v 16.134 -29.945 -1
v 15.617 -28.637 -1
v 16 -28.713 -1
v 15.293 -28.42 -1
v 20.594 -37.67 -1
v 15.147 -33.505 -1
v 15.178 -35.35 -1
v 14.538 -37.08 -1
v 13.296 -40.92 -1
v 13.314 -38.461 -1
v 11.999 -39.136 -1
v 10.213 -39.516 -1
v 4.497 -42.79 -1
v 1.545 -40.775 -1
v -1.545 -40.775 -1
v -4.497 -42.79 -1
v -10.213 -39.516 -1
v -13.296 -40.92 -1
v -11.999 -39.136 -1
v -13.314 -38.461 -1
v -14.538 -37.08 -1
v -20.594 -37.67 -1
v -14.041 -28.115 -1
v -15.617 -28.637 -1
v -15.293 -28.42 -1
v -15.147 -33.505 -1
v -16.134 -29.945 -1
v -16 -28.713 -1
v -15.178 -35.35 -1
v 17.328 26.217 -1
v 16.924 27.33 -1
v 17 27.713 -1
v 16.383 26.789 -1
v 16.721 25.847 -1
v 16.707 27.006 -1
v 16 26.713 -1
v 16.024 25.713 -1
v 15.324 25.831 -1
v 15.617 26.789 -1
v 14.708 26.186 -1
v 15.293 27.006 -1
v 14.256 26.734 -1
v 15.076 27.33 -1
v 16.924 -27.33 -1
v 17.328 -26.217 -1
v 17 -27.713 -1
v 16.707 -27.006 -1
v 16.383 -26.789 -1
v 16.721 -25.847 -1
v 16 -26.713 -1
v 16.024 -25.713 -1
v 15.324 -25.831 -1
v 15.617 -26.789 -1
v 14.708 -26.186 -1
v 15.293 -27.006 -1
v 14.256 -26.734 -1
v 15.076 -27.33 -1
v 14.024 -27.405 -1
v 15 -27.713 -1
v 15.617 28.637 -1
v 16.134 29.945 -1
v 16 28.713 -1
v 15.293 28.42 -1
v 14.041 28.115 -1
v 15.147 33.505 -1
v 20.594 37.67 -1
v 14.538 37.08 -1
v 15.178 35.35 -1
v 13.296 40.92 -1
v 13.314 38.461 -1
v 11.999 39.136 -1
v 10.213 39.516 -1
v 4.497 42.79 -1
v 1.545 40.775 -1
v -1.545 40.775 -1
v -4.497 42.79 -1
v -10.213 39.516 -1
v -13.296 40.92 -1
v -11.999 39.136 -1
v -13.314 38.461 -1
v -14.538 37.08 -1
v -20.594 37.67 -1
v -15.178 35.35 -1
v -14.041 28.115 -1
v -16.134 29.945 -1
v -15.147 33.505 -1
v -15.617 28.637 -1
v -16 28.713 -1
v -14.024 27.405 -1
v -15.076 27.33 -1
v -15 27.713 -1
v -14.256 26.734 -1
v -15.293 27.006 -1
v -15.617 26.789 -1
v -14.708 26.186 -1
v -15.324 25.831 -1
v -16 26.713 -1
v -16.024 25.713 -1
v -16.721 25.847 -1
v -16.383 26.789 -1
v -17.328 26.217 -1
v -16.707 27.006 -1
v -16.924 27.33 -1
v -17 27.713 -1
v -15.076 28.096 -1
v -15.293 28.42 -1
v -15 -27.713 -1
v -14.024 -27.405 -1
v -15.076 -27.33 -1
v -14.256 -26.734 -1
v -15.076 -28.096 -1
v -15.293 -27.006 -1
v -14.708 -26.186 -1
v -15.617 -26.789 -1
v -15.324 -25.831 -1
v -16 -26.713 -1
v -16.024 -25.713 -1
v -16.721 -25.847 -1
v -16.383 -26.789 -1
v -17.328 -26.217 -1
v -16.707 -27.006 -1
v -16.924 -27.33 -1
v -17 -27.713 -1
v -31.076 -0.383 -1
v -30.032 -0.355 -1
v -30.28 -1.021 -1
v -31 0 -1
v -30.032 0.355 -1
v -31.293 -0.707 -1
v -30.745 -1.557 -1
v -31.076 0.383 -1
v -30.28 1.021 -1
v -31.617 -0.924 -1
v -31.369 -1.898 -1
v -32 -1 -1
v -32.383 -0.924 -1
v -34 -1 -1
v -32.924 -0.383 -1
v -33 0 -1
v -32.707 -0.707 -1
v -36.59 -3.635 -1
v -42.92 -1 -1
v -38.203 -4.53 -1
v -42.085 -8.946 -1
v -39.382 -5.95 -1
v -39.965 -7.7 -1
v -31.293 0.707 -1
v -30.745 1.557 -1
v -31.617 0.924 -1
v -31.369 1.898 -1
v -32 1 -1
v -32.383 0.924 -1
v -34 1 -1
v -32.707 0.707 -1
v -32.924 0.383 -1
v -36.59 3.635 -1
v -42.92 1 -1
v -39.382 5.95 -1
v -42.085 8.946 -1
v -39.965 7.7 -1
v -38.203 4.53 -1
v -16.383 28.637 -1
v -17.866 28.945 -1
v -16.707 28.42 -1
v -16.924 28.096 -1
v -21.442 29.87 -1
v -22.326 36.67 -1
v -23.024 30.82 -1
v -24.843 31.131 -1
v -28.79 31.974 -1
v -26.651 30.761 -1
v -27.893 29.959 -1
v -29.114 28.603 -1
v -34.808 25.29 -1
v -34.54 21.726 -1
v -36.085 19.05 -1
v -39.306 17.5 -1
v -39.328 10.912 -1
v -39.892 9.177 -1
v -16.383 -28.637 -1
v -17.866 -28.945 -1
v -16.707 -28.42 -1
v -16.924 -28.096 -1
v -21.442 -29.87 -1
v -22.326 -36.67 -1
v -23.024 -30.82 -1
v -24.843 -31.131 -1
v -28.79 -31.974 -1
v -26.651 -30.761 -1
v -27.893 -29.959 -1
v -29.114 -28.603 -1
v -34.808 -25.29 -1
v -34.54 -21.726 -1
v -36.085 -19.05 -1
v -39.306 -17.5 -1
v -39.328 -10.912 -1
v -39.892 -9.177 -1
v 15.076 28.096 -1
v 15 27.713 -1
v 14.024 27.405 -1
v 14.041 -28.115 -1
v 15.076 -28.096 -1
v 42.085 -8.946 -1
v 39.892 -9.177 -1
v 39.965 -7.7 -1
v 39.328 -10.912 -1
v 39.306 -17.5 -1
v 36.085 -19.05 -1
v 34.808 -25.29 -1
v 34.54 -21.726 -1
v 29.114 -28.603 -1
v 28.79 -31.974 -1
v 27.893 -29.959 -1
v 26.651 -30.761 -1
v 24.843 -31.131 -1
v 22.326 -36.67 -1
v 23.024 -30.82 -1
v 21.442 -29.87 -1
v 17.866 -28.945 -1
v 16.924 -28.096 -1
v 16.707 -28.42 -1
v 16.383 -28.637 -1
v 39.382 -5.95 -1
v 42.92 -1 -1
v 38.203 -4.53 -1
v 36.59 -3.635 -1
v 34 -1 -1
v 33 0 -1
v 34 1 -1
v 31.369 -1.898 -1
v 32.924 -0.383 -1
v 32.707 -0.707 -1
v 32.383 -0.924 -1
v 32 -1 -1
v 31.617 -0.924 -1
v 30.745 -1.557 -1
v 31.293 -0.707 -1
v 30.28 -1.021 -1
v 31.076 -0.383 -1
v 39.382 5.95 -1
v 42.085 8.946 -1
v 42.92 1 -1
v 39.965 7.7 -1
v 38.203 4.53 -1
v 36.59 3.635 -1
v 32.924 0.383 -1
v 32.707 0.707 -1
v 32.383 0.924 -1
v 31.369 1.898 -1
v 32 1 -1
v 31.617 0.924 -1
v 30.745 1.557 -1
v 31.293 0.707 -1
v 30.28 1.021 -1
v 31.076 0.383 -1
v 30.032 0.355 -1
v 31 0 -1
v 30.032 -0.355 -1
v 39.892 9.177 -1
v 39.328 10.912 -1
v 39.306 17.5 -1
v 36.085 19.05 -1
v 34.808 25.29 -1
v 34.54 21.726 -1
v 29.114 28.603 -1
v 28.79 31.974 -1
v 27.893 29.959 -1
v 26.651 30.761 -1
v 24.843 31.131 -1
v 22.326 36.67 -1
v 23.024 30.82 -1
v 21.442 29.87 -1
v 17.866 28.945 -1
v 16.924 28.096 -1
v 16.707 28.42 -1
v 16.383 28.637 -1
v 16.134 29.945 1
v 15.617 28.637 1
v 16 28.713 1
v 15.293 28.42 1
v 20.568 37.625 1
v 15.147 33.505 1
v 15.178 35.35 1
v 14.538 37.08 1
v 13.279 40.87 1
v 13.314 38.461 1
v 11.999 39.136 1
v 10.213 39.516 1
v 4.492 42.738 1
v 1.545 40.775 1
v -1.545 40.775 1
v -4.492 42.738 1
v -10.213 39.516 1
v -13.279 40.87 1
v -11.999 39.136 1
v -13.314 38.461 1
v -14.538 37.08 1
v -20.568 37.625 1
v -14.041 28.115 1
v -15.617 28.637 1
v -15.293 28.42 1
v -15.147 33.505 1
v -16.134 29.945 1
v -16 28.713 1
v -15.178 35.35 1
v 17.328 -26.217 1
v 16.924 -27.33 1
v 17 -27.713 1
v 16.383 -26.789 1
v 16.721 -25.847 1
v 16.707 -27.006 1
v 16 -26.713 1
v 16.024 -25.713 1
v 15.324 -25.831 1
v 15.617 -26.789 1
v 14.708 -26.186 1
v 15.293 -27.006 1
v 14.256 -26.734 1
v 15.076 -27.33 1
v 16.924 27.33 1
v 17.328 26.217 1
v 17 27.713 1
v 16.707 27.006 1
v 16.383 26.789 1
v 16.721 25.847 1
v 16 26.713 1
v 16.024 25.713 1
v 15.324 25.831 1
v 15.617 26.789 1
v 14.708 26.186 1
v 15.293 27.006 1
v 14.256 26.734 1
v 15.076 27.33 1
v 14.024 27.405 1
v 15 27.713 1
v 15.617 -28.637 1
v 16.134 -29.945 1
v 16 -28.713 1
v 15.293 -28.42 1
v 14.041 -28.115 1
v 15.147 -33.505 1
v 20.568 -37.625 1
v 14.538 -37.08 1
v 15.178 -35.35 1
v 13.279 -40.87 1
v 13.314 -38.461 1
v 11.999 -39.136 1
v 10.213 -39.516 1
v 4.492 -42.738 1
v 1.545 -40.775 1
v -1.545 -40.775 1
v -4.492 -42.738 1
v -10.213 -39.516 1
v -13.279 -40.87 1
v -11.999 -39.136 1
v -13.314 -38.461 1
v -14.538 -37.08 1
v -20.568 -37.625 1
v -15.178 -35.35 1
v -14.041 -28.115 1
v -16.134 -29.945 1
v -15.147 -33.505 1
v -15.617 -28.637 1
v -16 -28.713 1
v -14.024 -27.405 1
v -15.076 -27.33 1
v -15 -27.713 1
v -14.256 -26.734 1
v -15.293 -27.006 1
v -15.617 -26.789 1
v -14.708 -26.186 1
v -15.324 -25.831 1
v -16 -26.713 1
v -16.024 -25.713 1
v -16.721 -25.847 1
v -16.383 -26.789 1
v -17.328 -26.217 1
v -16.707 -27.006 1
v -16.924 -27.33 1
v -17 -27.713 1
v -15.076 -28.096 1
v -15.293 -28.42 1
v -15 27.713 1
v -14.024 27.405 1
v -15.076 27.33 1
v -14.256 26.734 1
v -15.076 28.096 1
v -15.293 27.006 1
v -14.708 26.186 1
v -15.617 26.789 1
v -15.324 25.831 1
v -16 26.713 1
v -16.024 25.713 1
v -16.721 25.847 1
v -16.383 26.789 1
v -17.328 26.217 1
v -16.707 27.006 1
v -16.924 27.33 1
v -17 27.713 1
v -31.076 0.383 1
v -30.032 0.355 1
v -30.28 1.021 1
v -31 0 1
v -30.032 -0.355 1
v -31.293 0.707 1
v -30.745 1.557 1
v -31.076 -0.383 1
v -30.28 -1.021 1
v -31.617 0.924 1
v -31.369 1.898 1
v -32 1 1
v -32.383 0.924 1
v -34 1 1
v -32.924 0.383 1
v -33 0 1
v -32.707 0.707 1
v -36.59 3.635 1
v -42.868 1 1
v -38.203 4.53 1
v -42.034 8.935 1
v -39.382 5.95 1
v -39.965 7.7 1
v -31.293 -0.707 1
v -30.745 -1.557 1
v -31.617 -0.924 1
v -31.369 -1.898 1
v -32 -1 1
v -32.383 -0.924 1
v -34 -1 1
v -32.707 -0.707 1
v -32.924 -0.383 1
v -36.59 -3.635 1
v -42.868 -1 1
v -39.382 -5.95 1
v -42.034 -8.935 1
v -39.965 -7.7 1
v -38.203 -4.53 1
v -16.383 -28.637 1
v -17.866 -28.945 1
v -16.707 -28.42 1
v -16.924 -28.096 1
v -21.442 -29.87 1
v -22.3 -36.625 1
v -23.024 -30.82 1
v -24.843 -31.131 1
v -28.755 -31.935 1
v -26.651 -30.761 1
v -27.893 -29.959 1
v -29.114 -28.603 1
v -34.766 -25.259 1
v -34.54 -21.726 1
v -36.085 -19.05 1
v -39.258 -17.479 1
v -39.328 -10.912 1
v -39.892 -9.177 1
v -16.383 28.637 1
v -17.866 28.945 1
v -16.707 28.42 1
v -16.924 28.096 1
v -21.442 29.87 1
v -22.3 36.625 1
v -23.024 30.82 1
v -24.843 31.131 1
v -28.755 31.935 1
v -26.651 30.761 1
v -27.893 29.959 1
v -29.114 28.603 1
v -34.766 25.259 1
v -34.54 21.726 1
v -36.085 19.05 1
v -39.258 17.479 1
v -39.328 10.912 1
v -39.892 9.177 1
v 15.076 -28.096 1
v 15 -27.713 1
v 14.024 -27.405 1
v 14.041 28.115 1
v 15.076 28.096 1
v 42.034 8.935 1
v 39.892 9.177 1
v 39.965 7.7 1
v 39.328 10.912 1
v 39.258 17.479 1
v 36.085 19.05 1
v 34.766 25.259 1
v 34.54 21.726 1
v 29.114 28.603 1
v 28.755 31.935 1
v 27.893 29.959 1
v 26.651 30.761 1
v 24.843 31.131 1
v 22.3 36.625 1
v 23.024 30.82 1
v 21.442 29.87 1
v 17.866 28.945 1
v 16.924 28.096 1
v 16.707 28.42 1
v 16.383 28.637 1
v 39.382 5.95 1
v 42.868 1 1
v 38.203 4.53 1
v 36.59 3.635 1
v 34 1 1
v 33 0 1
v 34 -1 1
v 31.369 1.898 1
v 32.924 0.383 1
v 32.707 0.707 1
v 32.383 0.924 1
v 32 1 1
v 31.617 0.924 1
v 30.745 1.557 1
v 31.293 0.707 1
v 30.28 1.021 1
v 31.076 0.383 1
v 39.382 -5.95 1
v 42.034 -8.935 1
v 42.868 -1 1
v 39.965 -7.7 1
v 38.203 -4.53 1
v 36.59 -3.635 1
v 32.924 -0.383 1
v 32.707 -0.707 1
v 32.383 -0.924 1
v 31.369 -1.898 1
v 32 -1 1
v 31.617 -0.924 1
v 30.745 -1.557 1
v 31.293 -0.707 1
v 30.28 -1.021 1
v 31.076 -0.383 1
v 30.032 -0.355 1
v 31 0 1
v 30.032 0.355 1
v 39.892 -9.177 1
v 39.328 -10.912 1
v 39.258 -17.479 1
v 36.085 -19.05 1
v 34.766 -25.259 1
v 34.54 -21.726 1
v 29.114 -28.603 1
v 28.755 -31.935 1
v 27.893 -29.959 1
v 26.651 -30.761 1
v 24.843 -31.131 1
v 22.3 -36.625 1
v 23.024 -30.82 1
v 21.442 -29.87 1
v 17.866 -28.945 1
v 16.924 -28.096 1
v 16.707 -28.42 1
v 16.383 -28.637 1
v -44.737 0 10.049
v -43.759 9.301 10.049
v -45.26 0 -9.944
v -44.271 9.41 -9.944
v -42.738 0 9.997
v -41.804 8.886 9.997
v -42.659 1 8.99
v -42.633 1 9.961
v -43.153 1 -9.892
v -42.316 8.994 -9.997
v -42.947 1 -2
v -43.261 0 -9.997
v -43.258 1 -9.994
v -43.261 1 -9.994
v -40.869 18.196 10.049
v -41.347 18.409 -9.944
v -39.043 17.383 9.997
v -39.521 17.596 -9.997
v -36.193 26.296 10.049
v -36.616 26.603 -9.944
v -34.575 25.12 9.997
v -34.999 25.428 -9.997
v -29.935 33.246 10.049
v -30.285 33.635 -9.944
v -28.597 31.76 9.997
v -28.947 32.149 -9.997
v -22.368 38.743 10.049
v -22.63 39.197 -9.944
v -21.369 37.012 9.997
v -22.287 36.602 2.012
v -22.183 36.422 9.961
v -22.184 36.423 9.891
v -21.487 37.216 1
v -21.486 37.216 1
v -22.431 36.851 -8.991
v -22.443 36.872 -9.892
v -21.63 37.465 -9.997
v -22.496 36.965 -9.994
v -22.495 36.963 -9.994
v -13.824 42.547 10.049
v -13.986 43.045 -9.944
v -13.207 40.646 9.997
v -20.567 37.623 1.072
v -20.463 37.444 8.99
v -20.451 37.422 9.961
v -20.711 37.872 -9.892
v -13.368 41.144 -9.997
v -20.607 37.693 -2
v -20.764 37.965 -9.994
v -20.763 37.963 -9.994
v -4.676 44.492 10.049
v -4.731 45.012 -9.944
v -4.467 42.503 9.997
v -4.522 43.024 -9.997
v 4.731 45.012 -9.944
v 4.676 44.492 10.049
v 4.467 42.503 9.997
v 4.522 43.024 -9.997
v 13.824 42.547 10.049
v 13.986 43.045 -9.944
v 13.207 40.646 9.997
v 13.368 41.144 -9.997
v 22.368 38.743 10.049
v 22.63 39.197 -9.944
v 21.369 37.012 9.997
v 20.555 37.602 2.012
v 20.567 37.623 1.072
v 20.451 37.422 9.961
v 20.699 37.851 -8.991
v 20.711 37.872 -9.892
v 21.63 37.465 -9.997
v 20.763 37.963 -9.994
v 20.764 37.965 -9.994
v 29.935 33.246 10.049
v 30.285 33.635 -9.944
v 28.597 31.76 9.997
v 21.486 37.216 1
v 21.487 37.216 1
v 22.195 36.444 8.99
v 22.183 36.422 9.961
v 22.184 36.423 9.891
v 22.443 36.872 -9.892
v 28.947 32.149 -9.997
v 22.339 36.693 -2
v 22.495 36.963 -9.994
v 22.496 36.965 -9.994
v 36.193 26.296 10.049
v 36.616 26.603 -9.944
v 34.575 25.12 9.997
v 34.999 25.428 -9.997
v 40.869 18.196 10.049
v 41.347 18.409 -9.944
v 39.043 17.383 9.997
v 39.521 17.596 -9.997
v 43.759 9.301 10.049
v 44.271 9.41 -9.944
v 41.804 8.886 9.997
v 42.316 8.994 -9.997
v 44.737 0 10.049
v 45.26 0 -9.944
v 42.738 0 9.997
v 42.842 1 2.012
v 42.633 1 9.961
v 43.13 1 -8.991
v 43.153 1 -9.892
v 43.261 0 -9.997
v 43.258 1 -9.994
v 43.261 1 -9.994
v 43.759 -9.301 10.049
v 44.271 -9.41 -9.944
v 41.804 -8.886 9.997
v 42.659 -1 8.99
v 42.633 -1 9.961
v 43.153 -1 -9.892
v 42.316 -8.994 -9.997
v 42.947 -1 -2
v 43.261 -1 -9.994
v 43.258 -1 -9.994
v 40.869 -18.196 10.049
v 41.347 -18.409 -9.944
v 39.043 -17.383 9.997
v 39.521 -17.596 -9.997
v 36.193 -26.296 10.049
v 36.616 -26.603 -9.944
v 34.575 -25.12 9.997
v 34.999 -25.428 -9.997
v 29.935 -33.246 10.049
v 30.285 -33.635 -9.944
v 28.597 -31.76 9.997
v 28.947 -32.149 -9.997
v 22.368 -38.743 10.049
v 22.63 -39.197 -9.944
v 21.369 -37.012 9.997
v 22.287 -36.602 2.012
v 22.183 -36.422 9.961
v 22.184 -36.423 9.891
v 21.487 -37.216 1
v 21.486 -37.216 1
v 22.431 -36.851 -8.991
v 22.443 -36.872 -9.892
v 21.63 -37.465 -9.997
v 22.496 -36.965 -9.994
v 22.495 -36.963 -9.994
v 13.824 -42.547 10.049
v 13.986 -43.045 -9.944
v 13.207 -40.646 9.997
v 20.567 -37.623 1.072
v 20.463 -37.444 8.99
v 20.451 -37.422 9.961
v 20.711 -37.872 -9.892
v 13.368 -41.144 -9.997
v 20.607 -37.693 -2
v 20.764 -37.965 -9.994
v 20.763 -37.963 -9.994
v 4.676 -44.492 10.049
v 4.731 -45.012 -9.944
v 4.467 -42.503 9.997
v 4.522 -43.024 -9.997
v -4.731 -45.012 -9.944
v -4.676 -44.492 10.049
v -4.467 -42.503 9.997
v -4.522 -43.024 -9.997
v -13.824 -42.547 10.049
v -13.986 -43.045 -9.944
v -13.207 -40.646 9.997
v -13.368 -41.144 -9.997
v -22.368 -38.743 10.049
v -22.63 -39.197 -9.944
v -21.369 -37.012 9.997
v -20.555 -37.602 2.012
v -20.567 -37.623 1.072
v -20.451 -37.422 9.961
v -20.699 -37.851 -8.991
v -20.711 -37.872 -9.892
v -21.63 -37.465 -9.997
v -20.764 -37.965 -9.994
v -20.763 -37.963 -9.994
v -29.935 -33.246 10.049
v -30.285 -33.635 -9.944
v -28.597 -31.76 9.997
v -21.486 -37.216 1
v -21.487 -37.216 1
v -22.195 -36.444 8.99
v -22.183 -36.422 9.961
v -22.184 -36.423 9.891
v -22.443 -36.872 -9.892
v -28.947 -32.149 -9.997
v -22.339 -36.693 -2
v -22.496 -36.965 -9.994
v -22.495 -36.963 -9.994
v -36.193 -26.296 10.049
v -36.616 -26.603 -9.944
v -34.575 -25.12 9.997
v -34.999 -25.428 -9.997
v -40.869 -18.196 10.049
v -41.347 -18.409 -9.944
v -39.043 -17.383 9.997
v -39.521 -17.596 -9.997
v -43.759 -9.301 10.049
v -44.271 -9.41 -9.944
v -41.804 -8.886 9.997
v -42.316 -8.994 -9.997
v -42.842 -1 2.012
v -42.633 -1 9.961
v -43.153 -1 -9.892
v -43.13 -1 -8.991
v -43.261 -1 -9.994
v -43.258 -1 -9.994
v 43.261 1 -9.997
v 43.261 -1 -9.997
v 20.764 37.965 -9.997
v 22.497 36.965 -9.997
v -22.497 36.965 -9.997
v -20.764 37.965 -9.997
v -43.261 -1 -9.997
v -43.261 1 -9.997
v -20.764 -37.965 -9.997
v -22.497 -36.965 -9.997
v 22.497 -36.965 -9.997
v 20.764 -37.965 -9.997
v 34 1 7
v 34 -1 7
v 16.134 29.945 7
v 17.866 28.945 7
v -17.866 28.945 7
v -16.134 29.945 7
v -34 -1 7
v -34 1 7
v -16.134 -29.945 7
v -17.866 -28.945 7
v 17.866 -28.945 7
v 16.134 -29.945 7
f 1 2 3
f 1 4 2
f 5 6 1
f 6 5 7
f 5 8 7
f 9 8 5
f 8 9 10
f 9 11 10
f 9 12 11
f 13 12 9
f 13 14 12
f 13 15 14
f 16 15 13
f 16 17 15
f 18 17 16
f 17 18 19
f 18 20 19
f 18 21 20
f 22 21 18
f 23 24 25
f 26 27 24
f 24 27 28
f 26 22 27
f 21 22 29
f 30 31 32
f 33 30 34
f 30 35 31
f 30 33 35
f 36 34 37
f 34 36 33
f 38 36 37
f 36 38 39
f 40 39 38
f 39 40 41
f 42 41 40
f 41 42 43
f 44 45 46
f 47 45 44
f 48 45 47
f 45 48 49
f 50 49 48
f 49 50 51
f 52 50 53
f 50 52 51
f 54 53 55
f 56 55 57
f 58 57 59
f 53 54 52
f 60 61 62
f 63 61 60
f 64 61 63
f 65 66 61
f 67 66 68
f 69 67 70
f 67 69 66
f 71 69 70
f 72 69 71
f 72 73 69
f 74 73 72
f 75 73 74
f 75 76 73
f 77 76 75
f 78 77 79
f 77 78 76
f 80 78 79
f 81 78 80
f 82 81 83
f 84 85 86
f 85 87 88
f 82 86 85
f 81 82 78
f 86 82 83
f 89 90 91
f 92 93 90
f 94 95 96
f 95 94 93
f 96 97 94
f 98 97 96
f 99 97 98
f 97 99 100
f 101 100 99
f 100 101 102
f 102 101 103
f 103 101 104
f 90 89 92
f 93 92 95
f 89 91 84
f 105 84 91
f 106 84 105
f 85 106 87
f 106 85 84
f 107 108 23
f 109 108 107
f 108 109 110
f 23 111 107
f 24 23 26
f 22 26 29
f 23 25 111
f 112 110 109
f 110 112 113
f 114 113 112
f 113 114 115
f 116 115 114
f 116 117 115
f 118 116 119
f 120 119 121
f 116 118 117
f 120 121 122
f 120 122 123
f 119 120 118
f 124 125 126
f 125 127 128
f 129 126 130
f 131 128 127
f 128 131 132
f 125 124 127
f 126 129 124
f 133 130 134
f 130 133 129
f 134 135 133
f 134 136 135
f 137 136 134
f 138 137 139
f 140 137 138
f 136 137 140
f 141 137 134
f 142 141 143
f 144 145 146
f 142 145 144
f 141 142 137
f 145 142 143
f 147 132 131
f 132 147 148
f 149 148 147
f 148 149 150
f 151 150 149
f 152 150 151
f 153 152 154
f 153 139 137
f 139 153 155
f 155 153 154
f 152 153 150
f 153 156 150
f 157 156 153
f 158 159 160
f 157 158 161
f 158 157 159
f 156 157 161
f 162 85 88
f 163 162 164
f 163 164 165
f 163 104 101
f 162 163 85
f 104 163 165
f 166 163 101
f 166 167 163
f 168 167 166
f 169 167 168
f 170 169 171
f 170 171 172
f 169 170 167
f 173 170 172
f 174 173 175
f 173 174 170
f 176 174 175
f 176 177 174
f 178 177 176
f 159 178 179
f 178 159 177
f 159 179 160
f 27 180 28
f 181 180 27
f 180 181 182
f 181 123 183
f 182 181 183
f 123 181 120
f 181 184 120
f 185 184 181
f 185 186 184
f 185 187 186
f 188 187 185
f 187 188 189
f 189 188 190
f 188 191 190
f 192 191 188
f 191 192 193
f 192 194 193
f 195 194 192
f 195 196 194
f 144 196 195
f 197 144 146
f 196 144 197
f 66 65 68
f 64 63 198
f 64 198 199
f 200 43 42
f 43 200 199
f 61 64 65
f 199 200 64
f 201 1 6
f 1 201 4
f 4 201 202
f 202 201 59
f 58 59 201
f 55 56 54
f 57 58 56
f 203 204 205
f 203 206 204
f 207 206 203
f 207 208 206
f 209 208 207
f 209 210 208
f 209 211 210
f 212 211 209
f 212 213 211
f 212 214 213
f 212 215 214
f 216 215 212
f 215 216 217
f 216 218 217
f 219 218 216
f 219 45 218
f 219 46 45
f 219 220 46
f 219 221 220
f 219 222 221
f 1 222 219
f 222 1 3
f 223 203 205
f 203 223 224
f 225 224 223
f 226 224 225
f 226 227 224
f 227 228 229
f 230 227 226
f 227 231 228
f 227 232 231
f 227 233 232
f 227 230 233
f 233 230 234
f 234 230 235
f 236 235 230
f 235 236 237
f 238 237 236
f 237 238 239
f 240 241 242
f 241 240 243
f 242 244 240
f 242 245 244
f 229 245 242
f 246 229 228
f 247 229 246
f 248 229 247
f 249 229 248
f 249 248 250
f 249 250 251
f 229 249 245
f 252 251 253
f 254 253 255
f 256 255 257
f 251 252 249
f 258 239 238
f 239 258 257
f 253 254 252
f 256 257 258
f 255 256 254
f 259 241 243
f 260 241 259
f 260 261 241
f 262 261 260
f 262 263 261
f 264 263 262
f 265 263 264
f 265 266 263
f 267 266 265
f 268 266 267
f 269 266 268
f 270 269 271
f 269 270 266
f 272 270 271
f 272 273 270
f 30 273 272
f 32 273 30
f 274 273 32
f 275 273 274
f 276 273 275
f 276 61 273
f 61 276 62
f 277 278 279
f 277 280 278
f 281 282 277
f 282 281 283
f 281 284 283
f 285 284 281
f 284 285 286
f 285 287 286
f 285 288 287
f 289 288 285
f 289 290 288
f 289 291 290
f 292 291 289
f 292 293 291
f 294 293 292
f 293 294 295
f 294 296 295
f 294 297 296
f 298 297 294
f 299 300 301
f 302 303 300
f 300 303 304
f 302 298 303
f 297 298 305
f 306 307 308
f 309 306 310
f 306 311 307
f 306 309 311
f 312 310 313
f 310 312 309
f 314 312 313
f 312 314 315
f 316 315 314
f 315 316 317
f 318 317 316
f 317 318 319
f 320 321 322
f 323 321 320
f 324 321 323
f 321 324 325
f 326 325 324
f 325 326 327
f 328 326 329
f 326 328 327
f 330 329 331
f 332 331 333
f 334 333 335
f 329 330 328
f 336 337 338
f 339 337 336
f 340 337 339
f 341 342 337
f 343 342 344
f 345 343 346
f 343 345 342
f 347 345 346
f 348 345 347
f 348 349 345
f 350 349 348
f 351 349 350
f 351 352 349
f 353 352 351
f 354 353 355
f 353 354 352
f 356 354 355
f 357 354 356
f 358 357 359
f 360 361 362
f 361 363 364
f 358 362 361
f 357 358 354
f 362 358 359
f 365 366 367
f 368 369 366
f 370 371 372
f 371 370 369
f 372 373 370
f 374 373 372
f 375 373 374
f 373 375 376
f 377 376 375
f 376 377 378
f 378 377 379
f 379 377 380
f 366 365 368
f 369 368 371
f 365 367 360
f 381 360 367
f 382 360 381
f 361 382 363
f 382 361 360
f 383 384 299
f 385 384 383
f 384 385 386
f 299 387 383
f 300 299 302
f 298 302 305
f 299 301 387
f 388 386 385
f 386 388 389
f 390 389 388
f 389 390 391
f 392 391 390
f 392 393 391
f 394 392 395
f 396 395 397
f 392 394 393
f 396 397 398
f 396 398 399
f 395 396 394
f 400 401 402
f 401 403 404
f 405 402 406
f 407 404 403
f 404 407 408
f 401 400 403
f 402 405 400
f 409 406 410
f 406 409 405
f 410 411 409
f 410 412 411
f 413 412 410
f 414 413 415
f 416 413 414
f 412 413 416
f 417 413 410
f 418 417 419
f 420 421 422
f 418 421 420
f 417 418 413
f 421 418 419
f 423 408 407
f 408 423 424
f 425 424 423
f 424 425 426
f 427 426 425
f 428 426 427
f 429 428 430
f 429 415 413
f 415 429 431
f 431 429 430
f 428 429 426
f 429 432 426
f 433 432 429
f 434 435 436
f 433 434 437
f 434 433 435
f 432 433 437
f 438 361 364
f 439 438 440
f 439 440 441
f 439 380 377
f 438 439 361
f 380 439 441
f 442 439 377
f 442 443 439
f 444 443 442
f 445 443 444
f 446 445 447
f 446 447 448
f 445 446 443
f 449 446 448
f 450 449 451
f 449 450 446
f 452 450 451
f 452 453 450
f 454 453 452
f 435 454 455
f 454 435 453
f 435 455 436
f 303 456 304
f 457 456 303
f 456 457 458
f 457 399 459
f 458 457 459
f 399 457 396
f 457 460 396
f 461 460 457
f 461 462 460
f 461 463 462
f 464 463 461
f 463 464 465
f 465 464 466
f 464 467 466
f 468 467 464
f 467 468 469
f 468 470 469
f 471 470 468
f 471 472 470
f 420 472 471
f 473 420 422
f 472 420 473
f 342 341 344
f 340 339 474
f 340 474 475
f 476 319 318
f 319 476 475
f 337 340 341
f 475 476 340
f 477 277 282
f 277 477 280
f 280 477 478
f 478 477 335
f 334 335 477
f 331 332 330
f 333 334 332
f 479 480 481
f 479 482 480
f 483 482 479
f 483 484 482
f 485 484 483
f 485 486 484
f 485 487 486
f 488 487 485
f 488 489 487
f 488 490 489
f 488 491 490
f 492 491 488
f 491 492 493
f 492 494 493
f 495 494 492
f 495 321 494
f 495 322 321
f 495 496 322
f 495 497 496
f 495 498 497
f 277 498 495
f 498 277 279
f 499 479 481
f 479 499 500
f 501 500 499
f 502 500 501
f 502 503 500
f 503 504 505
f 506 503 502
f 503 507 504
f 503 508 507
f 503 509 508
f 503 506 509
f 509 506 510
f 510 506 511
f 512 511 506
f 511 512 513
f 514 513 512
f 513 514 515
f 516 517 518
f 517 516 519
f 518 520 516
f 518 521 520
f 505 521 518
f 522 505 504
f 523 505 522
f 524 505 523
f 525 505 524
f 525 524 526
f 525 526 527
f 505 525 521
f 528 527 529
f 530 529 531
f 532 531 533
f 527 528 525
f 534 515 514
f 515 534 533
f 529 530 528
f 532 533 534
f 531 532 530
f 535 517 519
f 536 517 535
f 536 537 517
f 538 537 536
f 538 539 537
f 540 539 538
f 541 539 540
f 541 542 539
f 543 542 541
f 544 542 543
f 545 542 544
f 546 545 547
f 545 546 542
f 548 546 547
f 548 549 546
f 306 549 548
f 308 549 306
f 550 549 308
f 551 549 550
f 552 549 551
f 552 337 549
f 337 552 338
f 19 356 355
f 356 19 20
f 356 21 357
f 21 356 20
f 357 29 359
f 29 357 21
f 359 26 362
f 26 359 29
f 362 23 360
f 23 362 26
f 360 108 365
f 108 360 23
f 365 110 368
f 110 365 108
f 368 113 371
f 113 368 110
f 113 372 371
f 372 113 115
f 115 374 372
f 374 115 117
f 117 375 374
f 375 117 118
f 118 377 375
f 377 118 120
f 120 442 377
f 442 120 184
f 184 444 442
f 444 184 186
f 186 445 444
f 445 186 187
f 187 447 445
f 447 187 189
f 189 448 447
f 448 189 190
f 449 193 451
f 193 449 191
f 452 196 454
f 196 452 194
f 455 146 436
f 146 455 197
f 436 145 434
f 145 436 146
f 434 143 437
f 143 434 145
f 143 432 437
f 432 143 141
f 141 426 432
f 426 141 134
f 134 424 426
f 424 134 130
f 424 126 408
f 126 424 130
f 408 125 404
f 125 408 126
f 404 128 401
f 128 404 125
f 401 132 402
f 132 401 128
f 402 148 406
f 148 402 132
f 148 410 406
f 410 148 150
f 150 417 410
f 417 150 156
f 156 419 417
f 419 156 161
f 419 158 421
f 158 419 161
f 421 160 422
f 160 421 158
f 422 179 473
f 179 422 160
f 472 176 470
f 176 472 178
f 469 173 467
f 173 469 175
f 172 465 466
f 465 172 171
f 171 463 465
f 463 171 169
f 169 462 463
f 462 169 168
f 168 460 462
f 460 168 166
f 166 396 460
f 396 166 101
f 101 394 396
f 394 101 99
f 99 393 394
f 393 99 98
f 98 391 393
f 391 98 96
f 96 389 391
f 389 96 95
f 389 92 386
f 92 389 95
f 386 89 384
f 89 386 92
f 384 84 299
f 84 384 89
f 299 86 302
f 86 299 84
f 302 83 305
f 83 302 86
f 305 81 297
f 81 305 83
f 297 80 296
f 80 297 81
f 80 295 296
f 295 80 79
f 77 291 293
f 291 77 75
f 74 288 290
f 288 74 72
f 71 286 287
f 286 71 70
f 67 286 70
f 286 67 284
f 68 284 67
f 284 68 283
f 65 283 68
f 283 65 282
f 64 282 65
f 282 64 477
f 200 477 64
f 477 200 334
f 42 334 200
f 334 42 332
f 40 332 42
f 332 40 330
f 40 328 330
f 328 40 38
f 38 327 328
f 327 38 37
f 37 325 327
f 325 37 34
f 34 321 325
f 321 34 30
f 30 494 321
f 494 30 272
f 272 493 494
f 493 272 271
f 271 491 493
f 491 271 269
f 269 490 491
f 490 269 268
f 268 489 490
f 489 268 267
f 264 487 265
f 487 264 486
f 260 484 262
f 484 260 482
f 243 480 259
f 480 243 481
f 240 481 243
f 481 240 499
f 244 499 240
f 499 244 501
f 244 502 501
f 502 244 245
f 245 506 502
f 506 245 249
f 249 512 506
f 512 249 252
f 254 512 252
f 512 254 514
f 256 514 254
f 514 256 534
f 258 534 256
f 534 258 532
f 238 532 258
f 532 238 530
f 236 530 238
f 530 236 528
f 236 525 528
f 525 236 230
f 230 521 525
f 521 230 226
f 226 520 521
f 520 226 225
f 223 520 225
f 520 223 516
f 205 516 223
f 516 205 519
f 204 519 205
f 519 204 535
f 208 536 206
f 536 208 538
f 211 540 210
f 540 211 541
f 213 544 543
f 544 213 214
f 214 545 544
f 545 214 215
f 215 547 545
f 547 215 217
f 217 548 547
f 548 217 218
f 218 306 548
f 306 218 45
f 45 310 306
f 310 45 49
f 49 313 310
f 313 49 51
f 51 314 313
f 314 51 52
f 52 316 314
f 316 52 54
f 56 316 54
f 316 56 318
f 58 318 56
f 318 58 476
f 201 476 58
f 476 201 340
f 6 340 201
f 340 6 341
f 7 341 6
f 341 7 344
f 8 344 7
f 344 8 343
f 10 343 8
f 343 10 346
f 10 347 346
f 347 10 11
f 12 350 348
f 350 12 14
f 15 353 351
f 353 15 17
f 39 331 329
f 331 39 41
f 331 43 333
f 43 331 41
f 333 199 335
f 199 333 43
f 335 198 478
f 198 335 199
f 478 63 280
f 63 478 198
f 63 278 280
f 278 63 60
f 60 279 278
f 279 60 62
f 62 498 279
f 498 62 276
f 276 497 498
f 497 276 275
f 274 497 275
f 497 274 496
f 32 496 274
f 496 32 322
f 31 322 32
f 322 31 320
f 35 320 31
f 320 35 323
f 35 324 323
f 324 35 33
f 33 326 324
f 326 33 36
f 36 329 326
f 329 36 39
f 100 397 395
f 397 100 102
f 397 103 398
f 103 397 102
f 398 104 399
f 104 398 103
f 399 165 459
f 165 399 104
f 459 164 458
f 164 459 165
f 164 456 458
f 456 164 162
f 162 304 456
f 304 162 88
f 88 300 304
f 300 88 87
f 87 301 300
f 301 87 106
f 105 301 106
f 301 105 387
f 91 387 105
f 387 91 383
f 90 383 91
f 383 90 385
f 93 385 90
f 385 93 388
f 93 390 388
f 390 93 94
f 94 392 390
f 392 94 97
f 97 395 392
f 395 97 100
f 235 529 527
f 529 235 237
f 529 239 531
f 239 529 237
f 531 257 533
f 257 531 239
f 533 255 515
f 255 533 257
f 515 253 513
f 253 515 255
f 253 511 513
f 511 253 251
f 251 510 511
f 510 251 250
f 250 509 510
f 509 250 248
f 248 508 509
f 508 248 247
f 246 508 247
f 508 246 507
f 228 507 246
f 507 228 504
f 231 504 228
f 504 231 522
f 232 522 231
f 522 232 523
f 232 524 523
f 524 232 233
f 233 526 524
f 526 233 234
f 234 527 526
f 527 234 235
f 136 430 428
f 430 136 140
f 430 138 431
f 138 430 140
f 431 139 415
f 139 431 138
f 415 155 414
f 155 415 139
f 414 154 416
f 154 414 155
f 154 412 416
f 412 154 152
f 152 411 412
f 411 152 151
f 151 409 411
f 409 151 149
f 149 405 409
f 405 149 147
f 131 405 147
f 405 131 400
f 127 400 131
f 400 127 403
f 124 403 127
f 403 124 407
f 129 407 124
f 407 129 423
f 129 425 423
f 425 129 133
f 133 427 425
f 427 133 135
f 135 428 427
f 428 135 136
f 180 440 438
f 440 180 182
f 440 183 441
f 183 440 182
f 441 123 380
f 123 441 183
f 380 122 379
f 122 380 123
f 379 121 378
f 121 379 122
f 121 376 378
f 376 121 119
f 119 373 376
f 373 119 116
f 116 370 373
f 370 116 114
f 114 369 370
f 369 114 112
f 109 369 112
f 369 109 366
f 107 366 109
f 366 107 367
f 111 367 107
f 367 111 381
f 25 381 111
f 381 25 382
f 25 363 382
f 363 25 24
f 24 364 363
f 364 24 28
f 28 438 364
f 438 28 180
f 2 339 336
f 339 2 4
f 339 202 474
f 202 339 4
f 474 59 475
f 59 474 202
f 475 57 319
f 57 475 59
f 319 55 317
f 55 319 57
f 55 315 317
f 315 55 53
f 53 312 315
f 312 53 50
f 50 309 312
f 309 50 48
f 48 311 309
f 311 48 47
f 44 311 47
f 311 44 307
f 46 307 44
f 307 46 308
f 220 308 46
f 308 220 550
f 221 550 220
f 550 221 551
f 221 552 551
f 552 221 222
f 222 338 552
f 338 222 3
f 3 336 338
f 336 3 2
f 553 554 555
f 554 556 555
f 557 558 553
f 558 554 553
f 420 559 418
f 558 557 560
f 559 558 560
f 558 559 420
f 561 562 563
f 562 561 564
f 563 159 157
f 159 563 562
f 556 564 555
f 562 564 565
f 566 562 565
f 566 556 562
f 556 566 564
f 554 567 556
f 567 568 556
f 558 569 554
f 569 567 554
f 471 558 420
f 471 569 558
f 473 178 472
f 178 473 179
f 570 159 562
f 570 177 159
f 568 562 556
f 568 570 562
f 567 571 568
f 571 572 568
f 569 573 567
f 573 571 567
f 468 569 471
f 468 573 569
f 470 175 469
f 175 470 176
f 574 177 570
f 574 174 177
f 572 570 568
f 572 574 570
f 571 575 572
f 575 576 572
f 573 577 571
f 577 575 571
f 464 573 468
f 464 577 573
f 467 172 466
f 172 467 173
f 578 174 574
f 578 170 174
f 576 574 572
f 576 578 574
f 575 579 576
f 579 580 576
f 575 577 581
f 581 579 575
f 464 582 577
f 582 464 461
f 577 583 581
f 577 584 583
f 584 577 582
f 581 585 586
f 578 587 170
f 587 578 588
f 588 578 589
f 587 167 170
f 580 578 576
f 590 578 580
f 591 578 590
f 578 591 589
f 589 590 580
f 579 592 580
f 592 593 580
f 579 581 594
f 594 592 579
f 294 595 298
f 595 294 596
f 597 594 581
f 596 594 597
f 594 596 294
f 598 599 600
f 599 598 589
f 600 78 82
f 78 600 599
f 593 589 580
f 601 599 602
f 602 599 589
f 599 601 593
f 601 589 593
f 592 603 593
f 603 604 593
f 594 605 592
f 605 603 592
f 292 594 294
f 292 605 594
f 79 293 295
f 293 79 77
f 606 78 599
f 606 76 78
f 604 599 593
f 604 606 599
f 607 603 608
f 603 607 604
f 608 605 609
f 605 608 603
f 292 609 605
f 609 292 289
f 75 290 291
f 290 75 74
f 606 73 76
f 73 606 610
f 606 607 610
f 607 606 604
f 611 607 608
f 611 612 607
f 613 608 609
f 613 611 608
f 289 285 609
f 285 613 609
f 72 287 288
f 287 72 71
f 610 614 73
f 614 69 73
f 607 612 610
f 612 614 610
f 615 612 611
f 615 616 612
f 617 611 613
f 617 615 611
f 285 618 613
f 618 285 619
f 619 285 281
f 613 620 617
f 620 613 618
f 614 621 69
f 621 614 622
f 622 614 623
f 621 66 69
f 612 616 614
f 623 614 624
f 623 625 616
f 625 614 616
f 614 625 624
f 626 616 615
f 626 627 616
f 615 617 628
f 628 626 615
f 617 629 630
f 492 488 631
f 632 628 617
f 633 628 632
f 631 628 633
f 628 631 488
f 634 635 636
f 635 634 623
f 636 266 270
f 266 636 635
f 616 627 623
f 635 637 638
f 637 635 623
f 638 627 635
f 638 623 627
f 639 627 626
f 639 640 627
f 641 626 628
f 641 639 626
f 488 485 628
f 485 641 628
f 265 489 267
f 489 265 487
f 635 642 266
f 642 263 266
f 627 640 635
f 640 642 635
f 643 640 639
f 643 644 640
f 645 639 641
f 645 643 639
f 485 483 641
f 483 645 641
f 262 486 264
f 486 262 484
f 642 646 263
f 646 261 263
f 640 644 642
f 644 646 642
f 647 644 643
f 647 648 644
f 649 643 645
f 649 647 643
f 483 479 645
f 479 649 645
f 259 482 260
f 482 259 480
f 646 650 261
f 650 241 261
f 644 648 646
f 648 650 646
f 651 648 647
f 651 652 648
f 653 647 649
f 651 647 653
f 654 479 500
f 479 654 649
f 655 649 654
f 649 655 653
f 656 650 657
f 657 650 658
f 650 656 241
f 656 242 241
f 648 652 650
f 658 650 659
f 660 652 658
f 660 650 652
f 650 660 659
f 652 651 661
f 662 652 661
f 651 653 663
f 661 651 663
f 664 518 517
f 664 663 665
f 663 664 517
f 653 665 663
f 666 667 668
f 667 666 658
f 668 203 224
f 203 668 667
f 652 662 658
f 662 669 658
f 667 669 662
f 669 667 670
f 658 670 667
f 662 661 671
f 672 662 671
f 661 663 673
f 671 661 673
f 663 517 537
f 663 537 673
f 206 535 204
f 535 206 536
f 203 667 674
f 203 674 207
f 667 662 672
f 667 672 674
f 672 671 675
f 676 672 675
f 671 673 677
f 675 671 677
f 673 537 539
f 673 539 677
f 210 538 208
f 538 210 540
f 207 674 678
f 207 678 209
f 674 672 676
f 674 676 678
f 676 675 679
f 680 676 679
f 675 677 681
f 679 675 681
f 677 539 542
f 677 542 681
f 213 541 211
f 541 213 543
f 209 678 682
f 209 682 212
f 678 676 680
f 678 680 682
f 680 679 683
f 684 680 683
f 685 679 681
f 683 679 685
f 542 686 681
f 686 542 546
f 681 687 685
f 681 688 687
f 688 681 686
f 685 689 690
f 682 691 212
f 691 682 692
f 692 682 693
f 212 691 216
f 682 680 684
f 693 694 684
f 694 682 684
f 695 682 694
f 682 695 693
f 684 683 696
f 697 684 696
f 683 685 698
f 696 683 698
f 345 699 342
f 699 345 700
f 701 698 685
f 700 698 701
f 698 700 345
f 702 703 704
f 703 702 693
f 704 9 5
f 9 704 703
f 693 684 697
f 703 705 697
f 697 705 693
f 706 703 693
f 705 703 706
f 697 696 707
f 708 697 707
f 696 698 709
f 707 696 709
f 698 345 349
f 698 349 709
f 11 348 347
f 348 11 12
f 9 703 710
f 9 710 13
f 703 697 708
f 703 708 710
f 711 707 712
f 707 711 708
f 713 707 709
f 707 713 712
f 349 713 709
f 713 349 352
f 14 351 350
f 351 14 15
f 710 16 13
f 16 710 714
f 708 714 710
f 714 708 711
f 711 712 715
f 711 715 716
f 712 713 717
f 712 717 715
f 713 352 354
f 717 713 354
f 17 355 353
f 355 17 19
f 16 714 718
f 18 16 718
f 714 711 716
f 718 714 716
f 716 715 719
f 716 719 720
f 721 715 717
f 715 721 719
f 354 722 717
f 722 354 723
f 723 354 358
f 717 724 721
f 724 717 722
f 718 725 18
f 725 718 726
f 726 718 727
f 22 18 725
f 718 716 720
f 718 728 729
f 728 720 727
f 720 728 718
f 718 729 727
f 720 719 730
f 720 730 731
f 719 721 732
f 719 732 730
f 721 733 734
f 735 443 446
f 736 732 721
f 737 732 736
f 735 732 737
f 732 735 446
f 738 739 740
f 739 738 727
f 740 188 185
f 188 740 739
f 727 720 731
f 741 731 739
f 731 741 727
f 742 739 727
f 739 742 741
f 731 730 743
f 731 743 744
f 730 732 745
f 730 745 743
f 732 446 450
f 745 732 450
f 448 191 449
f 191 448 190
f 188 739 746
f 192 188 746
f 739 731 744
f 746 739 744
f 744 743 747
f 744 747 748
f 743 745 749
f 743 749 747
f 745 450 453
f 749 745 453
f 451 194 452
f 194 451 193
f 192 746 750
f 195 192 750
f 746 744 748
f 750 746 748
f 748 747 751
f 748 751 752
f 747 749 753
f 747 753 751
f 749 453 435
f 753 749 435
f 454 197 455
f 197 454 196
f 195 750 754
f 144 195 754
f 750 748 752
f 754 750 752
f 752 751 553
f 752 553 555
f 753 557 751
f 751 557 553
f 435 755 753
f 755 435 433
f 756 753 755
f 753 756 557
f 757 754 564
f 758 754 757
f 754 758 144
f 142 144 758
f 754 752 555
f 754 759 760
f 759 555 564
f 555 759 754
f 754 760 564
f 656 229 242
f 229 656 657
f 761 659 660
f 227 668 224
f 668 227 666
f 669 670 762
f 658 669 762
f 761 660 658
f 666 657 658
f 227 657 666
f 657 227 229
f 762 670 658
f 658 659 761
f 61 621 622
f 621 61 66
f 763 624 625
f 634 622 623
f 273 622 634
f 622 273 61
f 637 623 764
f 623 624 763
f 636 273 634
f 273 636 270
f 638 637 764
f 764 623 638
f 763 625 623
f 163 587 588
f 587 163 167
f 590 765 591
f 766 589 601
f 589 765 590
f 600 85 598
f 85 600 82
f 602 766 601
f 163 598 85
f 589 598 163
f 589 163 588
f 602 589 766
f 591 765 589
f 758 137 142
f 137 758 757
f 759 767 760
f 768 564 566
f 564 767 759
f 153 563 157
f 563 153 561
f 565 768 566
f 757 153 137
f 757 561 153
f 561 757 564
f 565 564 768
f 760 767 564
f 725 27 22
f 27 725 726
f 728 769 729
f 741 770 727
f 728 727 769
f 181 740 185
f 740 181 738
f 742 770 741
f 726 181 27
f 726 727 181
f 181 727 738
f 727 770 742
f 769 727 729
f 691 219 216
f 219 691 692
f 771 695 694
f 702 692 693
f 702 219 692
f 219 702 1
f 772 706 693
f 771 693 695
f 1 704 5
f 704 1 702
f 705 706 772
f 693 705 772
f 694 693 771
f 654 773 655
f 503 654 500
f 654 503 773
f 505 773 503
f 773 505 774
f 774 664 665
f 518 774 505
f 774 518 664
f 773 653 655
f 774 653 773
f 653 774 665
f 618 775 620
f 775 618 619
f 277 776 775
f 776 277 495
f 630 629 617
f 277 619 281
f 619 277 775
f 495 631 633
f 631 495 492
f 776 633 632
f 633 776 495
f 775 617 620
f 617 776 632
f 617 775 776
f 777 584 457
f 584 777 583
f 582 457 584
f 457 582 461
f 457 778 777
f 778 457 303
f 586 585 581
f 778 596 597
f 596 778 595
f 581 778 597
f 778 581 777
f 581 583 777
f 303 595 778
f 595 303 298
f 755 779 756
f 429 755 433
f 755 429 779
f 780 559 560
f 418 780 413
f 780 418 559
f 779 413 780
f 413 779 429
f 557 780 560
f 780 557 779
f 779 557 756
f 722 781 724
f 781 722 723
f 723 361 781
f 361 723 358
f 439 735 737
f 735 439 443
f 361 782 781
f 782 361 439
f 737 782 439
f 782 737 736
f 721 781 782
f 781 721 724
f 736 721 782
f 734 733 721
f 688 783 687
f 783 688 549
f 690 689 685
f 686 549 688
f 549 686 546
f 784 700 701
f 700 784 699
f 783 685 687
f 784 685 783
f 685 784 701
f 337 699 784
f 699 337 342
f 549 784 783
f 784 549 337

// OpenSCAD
// Generated by Parametrix
ca_vaxis_holder_facePetal_0 = [ [ 42.9731, 0.0000 ],[ 39.7020, 16.4451 ],[ 30.3866, 30.3866 ],[ 16.4451, 39.7020 ],[ 0.0000, 42.9731 ],[ -16.4451, 39.7020 ],[ -30.3866, 30.3866 ],[ -39.7020, 16.4451 ],[ -42.9731, 0.0000 ],[ -39.7020, -16.4451 ],[ -30.3866, -30.3866 ],[ -16.4451, -39.7020 ],[ -0.0000, -42.9731 ],[ 16.4451, -39.7020 ],[ 30.3866, -30.3866 ],[ 39.7020, -16.4451 ],[ 42.9731, 0.0000 ] ];
cb_vaxis_holder_facePetal_0 = [  0, 1, 2, 3, 4, 5, 6, 7, 8, 9, 10, 11, 12, 13, 14, 15, 16 ];
ca_vaxis_holder_facePetal_1 = [ [ 36.5896, -3.6346 ],[ 31.3687, -1.8977 ],[ 30.7452, -1.5574 ],[ 30.2800, -1.0206 ],[ 30.0318, -0.3551 ],[ 30.0318, 0.3551 ],[ 30.2800, 1.0206 ],[ 30.7452, 1.5574 ],[ 31.3687, 1.8977 ],[ 36.5896, 3.6346 ],[ 38.2028, 4.5300 ],[ 39.3815, 5.9496 ],[ 39.9650, 7.6999 ],[ 39.8740, 9.5427 ],[ 35.5070, 20.5000 ],[ 28.2012, 29.7606 ],[ 26.6508, 30.7608 ],[ 24.8432, 31.1306 ],[ 23.0245, 30.8196 ],[ 21.4425, 29.8703 ],[ 17.3278, 26.2172 ],[ 16.7214, 25.8474 ],[ 16.0239, 25.7130 ],[ 15.3235, 25.8307 ],[ 14.7083, 26.1859 ],[ 14.2561, 26.7336 ],[ 14.0239, 27.4049 ],[ 14.0408, 28.1149 ],[ 15.1472, 33.5049 ],[ 15.1783, 35.3496 ],[ 14.5383, 37.0801 ],[ 13.3142, 38.4607 ],[ 11.6728, 39.3033 ],[ -0.0000, 41.0000 ],[ -11.6728, 39.3033 ],[ -13.3142, 38.4607 ],[ -14.5383, 37.0801 ],[ -15.1783, 35.3496 ],[ -15.1472, 33.5049 ],[ -14.0408, 28.1149 ],[ -14.0239, 27.4049 ],[ -14.2561, 26.7336 ],[ -14.7083, 26.1859 ],[ -15.3235, 25.8307 ],[ -16.0239, 25.7130 ],[ -16.7214, 25.8474 ],[ -17.3278, 26.2172 ],[ -21.4425, 29.8703 ],[ -23.0245, 30.8196 ],[ -24.8432, 31.1306 ],[ -26.6508, 30.7608 ],[ -28.2012, 29.7606 ],[ -35.5070, 20.5000 ],[ -39.8740, 9.5427 ],[ -39.9650, 7.6999 ],[ -39.3815, 5.9496 ],[ -38.2028, 4.5300 ],[ -36.5896, 3.6346 ],[ -31.3687, 1.8977 ],[ -30.7452, 1.5574 ],[ -30.2800, 1.0206 ],[ -30.0318, 0.3551 ],[ -30.0318, -0.3551 ],[ -30.2800, -1.0206 ],[ -30.7452, -1.5574 ],[ -31.3687, -1.8977 ],[ -36.5896, -3.6346 ],[ -38.2028, -4.5300 ],[ -39.3815, -5.9496 ],[ -39.9650, -7.6999 ],[ -39.8740, -9.5427 ],[ -35.5070, -20.5000 ],[ -28.2012, -29.7606 ],[ -26.6508, -30.7608 ],[ -24.8432, -31.1306 ],[ -23.0245, -30.8196 ],[ -21.4425, -29.8703 ],[ -17.3278, -26.2172 ],[ -16.7214, -25.8474 ],[ -16.0239, -25.7130 ],[ -15.3235, -25.8307 ],[ -14.7083, -26.1859 ],[ -14.2561, -26.7336 ],[ -14.0239, -27.4049 ],[ -14.0408, -28.1149 ],[ -15.1472, -33.5049 ],[ -15.1783, -35.3496 ],[ -14.5383, -37.0801 ],[ -13.3142, -38.4607 ],[ -11.6728, -39.3033 ],[ 0.0000, -41.0000 ],[ 11.6728, -39.3033 ],[ 13.3142, -38.4607 ],[ 14.5383, -37.0801 ],[ 15.1783, -35.3496 ],[ 15.1472, -33.5049 ],[ 14.0408, -28.1149 ],[ 14.0239, -27.4049 ],[ 14.2561, -26.7336 ],[ 14.7083, -26.1859 ],[ 15.3235, -25.8307 ],[ 16.0239, -25.7130 ],[ 16.7214, -25.8474 ],[ 17.3278, -26.2172 ],[ 21.4425, -29.8703 ],[ 23.0245, -30.8196 ],[ 24.8432, -31.1306 ],[ 26.6508, -30.7608 ],[ 28.2012, -29.7606 ],[ 35.5070, -20.5000 ],[ 39.8740, -9.5427 ],[ 39.9650, -7.6999 ],[ 39.3815, -5.9496 ],[ 38.2028, -4.5300 ],[ 36.5896, -3.6346 ] ];
cb_vaxis_holder_facePetal_1 = [  17, 18, 19, 20, 21, 22, 23, 24, 25, 26, 27, 28, 29, 30, 31, 32, 33, 34, 35, 36, 37, 38, 39, 40, 41, 42, 43, 44, 45, 46, 47, 48, 49, 50, 51, 52, 53, 54, 55, 56, 57, 58, 59, 60, 61, 62, 63, 64, 65, 66, 67, 68, 69, 70, 71, 72, 73, 74, 75, 76, 77, 78, 79, 80, 81, 82, 83, 84, 85, 86, 87, 88, 89, 90, 91, 92, 93, 94, 95, 96, 97, 98, 99, 100, 101, 102, 103, 104, 105, 106, 107, 108, 109, 110, 111, 112, 113, 114, 115, 116, 117, 118, 119, 120, 121, 122, 123, 124, 125, 126, 127, 128, 129, 130, 131 ];
ca_vaxis_holder_facePetal_2 = [ [ 33.0000, 0.0000 ],[ 32.9239, 0.3827 ],[ 32.7071, 0.7071 ],[ 32.3827, 0.9239 ],[ 32.0000, 1.0000 ],[ 31.6173, 0.9239 ],[ 31.2929, 0.7071 ],[ 31.0761, 0.3827 ],[ 31.0000, 0.0000 ],[ 31.0761, -0.3827 ],[ 31.2929, -0.7071 ],[ 31.6173, -0.9239 ],[ 32.0000, -1.0000 ],[ 32.3827, -0.9239 ],[ 32.7071, -0.7071 ],[ 32.9239, -0.3827 ],[ 33.0000, 0.0000 ] ];
cb_vaxis_holder_facePetal_2 = [  132, 133, 134, 135, 136, 137, 138, 139, 140, 141, 142, 143, 144, 145, 146, 147, 148 ];
ca_vaxis_holder_facePetal_3 = [ [ 17.0000, 27.7128 ],[ 16.9239, 28.0955 ],[ 16.7071, 28.4199 ],[ 16.3827, 28.6367 ],[ 16.0000, 28.7128 ],[ 15.6173, 28.6367 ],[ 15.2929, 28.4199 ],[ 15.0761, 28.0955 ],[ 15.0000, 27.7128 ],[ 15.0761, 27.3301 ],[ 15.2929, 27.0057 ],[ 15.6173, 26.7889 ],[ 16.0000, 26.7128 ],[ 16.3827, 26.7889 ],[ 16.7071, 27.0057 ],[ 16.9239, 27.3301 ],[ 17.0000, 27.7128 ] ];
cb_vaxis_holder_facePetal_3 = [  149, 150, 151, 152, 153, 154, 155, 156, 157, 158, 159, 160, 161, 162, 163, 164, 165 ];
ca_vaxis_holder_facePetal_4 = [ [ -15.0000, 27.7128 ],[ -15.0761, 28.0955 ],[ -15.2929, 28.4199 ],[ -15.6173, 28.6367 ],[ -16.0000, 28.7128 ],[ -16.3827, 28.6367 ],[ -16.7071, 28.4199 ],[ -16.9239, 28.0955 ],[ -17.0000, 27.7128 ],[ -16.9239, 27.3301 ],[ -16.7071, 27.0057 ],[ -16.3827, 26.7889 ],[ -16.0000, 26.7128 ],[ -15.6173, 26.7889 ],[ -15.2929, 27.0057 ],[ -15.0761, 27.3301 ],[ -15.0000, 27.7128 ] ];
cb_vaxis_holder_facePetal_4 = [  166, 167, 168, 169, 170, 171, 172, 173, 174, 175, 176, 177, 178, 179, 180, 181, 182 ];
ca_vaxis_holder_facePetal_5 = [ [ -31.0000, 0.0000 ],[ -31.0761, 0.3827 ],[ -31.2929, 0.7071 ],[ -31.6173, 0.9239 ],[ -32.0000, 1.0000 ],[ -32.3827, 0.9239 ],[ -32.7071, 0.7071 ],[ -32.9239, 0.3827 ],[ -33.0000, 0.0000 ],[ -32.9239, -0.3827 ],[ -32.7071, -0.7071 ],[ -32.3827, -0.9239 ],[ -32.0000, -1.0000 ],[ -31.6173, -0.9239 ],[ -31.2929, -0.7071 ],[ -31.0761, -0.3827 ],[ -31.0000, 0.0000 ] ];
cb_vaxis_holder_facePetal_5 = [  183, 184, 185, 186, 187, 188, 189, 190, 191, 192, 193, 194, 195, 196, 197, 198, 199 ];
ca_vaxis_holder_facePetal_6 = [ [ -15.0000, -27.7128 ],[ -15.0761, -27.3301 ],[ -15.2929, -27.0057 ],[ -15.6173, -26.7889 ],[ -16.0000, -26.7128 ],[ -16.3827, -26.7889 ],[ -16.7071, -27.0057 ],[ -16.9239, -27.3301 ],[ -17.0000, -27.7128 ],[ -16.9239, -28.0955 ],[ -16.7071, -28.4199 ],[ -16.3827, -28.6367 ],[ -16.0000, -28.7128 ],[ -15.6173, -28.6367 ],[ -15.2929, -28.4199 ],[ -15.0761, -28.0955 ],[ -15.0000, -27.7128 ] ];
cb_vaxis_holder_facePetal_6 = [  200, 201, 202, 203, 204, 205, 206, 207, 208, 209, 210, 211, 212, 213, 214, 215, 216 ];
ca_vaxis_holder_facePetal_7 = [ [ 17.0000, -27.7128 ],[ 16.9239, -27.3301 ],[ 16.7071, -27.0057 ],[ 16.3827, -26.7889 ],[ 16.0000, -26.7128 ],[ 15.6173, -26.7889 ],[ 15.2929, -27.0057 ],[ 15.0761, -27.3301 ],[ 15.0000, -27.7128 ],[ 15.0761, -28.0955 ],[ 15.2929, -28.4199 ],[ 15.6173, -28.6367 ],[ 16.0000, -28.7128 ],[ 16.3827, -28.6367 ],[ 16.7071, -28.4199 ],[ 16.9239, -28.0955 ],[ 17.0000, -27.7128 ] ];
cb_vaxis_holder_facePetal_7 = [  217, 218, 219, 220, 221, 222, 223, 224, 225, 226, 227, 228, 229, 230, 231, 232, 233 ];
a_vaxis_holder_facePetal = concat(ca_vaxis_holder_facePetal_0, ca_vaxis_holder_facePetal_1, ca_vaxis_holder_facePetal_2, ca_vaxis_holder_facePetal_3, ca_vaxis_holder_facePetal_4, ca_vaxis_holder_facePetal_5, ca_vaxis_holder_facePetal_6, ca_vaxis_holder_facePetal_7);
b_vaxis_holder_facePetal = [cb_vaxis_holder_facePetal_0, cb_vaxis_holder_facePetal_1, cb_vaxis_holder_facePetal_2, cb_vaxis_holder_facePetal_3, cb_vaxis_holder_facePetal_4, cb_vaxis_holder_facePetal_5, cb_vaxis_holder_facePetal_6, cb_vaxis_holder_facePetal_7];
ca_vaxis_holder_faceOuter_0 = [ [ 41.0000, -1.0000 ],[ 43.0255, -1.0000 ],[ 43.2611, -9.9966 ],[ 45.2604, -9.9442 ],[ 44.7369, 10.0489 ],[ 42.7375, 9.9966 ],[ 42.9731, 1.0000 ],[ 41.0000, 1.0000 ],[ 41.0000, -1.0000 ] ];
cb_vaxis_holder_faceOuter_0 = [  0, 1, 2, 3, 4, 5, 6, 7, 8 ];
a_vaxis_holder_faceOuter = concat(ca_vaxis_holder_faceOuter_0);
b_vaxis_holder_faceOuter = [cb_vaxis_holder_faceOuter_0];
ca_vaxis_holder_faceButtress1_0 = [ [ 34.0000, -1.0000 ],[ 43.0255, -1.0000 ],[ 43.2611, -9.9966 ],[ 34.0000, -1.0000 ] ];
cb_vaxis_holder_faceButtress1_0 = [  0, 1, 2, 3 ];
a_vaxis_holder_faceButtress1 = concat(ca_vaxis_holder_faceButtress1_0);
b_vaxis_holder_faceButtress1 = [cb_vaxis_holder_faceButtress1_0];
ca_vaxis_holder_faceButtress2_0 = [ [ 34.0000, 1.0000 ],[ 42.9731, 1.0000 ],[ 42.7375, 9.9966 ],[ 34.0000, 7.0000 ],[ 34.0000, 1.0000 ] ];
cb_vaxis_holder_faceButtress2_0 = [  0, 1, 2, 3, 4 ];
a_vaxis_holder_faceButtress2 = concat(ca_vaxis_holder_faceButtress2_0);
b_vaxis_holder_faceButtress2 = [cb_vaxis_holder_faceButtress2_0];

module subpax_vaxis_holder_outer () {
	translate( [ 0, 0, 0 ])
		rotate( [ 0, 0, 0 ])
			   rotate_extrude() polygon(a_vaxis_holder_faceOuter, b_vaxis_holder_faceOuter);
}

module subpax_vaxis_holder_petal () {
	translate( [ 0, 0, -1 ])
		rotate( [ 0, 0, 0 ])
			   linear_extrude(height = 2) polygon(a_vaxis_holder_facePetal, b_vaxis_holder_facePetal);
}

module subpax_vaxis_holder_b1_0 () {
	translate( [ 0, 1, 0 ])
		rotate( [ 90, 0, 0 ])
			   linear_extrude(height = 2) polygon(a_vaxis_holder_faceButtress1, b_vaxis_holder_faceButtress1);
}

module subpax_vaxis_holder_b1_1 () {
	translate( [ -0.8660254037844386, 0.5000000000000001, 0 ])
		rotate( [ 90, 0, 59.99999999999999 ])
			   linear_extrude(height = 2) polygon(a_vaxis_holder_faceButtress1, b_vaxis_holder_faceButtress1);
}

module subpax_vaxis_holder_b1_2 () {
	translate( [ -0.8660254037844387, -0.4999999999999998, 0 ])
		rotate( [ 90, 0, 120.00000000000001 ])
			   linear_extrude(height = 2) polygon(a_vaxis_holder_faceButtress1, b_vaxis_holder_faceButtress1);
}

module subpax_vaxis_holder_b1_3 () {
	translate( [ -1.2246467991473532e-16, -1, 0 ])
		rotate( [ 90, 0, 180 ])
			   linear_extrude(height = 2) polygon(a_vaxis_holder_faceButtress1, b_vaxis_holder_faceButtress1);
}

module subpax_vaxis_holder_b1_4 () {
	translate( [ 0.8660254037844385, -0.5000000000000004, 0 ])
		rotate( [ 90, 0, -120.00000000000004 ])
			   linear_extrude(height = 2) polygon(a_vaxis_holder_faceButtress1, b_vaxis_holder_faceButtress1);
}

module subpax_vaxis_holder_b1_5 () {
	translate( [ 0.866025403784439, 0.49999999999999933, 0 ])
		rotate( [ 90, 0, -60.00000000000004 ])
			   linear_extrude(height = 2) polygon(a_vaxis_holder_faceButtress1, b_vaxis_holder_faceButtress1);
}

module subpax_vaxis_holder_b2_0 () {
	translate( [ 0, 1, 0 ])
		rotate( [ 90, 0, 0 ])
			   linear_extrude(height = 2) polygon(a_vaxis_holder_faceButtress2, b_vaxis_holder_faceButtress2);
}

module subpax_vaxis_holder_b2_1 () {
	translate( [ -0.8660254037844386, 0.5000000000000001, 0 ])
		rotate( [ 90, 0, 59.99999999999999 ])
			   linear_extrude(height = 2) polygon(a_vaxis_holder_faceButtress2, b_vaxis_holder_faceButtress2);
}

module subpax_vaxis_holder_b2_2 () {
	translate( [ -0.8660254037844387, -0.4999999999999998, 0 ])
		rotate( [ 90, 0, 120.00000000000001 ])
			   linear_extrude(height = 2) polygon(a_vaxis_holder_faceButtress2, b_vaxis_holder_faceButtress2);
}

module subpax_vaxis_holder_b2_3 () {
	translate( [ -1.2246467991473532e-16, -1, 0 ])
		rotate( [ 90, 0, 180 ])
			   linear_extrude(height = 2) polygon(a_vaxis_holder_faceButtress2, b_vaxis_holder_faceButtress2);
}

module subpax_vaxis_holder_b2_4 () {
	translate( [ 0.8660254037844385, -0.5000000000000004, 0 ])
		rotate( [ 90, 0, -120.00000000000004 ])
			   linear_extrude(height = 2) polygon(a_vaxis_holder_faceButtress2, b_vaxis_holder_faceButtress2);
}

module subpax_vaxis_holder_b2_5 () {
	translate( [ 0.866025403784439, 0.49999999999999933, 0 ])
		rotate( [ 90, 0, -60.00000000000004 ])
			   linear_extrude(height = 2) polygon(a_vaxis_holder_faceButtress2, b_vaxis_holder_faceButtress2);
}

module pax_vaxis_holder () {
	union () {
		subpax_vaxis_holder_petal();
subpax_vaxis_holder_outer();
subpax_vaxis_holder_b1_0();
subpax_vaxis_holder_b1_1();
subpax_vaxis_holder_b1_2();
subpax_vaxis_holder_b1_3();
subpax_vaxis_holder_b1_4();
subpax_vaxis_holder_b1_5();
subpax_vaxis_holder_b2_0();
subpax_vaxis_holder_b2_1();
subpax_vaxis_holder_b2_2();
subpax_vaxis_holder_b2_3();
subpax_vaxis_holder_b2_4();
subpax_vaxis_holder_b2_5();
	}
}

pax_vaxis_holder();
